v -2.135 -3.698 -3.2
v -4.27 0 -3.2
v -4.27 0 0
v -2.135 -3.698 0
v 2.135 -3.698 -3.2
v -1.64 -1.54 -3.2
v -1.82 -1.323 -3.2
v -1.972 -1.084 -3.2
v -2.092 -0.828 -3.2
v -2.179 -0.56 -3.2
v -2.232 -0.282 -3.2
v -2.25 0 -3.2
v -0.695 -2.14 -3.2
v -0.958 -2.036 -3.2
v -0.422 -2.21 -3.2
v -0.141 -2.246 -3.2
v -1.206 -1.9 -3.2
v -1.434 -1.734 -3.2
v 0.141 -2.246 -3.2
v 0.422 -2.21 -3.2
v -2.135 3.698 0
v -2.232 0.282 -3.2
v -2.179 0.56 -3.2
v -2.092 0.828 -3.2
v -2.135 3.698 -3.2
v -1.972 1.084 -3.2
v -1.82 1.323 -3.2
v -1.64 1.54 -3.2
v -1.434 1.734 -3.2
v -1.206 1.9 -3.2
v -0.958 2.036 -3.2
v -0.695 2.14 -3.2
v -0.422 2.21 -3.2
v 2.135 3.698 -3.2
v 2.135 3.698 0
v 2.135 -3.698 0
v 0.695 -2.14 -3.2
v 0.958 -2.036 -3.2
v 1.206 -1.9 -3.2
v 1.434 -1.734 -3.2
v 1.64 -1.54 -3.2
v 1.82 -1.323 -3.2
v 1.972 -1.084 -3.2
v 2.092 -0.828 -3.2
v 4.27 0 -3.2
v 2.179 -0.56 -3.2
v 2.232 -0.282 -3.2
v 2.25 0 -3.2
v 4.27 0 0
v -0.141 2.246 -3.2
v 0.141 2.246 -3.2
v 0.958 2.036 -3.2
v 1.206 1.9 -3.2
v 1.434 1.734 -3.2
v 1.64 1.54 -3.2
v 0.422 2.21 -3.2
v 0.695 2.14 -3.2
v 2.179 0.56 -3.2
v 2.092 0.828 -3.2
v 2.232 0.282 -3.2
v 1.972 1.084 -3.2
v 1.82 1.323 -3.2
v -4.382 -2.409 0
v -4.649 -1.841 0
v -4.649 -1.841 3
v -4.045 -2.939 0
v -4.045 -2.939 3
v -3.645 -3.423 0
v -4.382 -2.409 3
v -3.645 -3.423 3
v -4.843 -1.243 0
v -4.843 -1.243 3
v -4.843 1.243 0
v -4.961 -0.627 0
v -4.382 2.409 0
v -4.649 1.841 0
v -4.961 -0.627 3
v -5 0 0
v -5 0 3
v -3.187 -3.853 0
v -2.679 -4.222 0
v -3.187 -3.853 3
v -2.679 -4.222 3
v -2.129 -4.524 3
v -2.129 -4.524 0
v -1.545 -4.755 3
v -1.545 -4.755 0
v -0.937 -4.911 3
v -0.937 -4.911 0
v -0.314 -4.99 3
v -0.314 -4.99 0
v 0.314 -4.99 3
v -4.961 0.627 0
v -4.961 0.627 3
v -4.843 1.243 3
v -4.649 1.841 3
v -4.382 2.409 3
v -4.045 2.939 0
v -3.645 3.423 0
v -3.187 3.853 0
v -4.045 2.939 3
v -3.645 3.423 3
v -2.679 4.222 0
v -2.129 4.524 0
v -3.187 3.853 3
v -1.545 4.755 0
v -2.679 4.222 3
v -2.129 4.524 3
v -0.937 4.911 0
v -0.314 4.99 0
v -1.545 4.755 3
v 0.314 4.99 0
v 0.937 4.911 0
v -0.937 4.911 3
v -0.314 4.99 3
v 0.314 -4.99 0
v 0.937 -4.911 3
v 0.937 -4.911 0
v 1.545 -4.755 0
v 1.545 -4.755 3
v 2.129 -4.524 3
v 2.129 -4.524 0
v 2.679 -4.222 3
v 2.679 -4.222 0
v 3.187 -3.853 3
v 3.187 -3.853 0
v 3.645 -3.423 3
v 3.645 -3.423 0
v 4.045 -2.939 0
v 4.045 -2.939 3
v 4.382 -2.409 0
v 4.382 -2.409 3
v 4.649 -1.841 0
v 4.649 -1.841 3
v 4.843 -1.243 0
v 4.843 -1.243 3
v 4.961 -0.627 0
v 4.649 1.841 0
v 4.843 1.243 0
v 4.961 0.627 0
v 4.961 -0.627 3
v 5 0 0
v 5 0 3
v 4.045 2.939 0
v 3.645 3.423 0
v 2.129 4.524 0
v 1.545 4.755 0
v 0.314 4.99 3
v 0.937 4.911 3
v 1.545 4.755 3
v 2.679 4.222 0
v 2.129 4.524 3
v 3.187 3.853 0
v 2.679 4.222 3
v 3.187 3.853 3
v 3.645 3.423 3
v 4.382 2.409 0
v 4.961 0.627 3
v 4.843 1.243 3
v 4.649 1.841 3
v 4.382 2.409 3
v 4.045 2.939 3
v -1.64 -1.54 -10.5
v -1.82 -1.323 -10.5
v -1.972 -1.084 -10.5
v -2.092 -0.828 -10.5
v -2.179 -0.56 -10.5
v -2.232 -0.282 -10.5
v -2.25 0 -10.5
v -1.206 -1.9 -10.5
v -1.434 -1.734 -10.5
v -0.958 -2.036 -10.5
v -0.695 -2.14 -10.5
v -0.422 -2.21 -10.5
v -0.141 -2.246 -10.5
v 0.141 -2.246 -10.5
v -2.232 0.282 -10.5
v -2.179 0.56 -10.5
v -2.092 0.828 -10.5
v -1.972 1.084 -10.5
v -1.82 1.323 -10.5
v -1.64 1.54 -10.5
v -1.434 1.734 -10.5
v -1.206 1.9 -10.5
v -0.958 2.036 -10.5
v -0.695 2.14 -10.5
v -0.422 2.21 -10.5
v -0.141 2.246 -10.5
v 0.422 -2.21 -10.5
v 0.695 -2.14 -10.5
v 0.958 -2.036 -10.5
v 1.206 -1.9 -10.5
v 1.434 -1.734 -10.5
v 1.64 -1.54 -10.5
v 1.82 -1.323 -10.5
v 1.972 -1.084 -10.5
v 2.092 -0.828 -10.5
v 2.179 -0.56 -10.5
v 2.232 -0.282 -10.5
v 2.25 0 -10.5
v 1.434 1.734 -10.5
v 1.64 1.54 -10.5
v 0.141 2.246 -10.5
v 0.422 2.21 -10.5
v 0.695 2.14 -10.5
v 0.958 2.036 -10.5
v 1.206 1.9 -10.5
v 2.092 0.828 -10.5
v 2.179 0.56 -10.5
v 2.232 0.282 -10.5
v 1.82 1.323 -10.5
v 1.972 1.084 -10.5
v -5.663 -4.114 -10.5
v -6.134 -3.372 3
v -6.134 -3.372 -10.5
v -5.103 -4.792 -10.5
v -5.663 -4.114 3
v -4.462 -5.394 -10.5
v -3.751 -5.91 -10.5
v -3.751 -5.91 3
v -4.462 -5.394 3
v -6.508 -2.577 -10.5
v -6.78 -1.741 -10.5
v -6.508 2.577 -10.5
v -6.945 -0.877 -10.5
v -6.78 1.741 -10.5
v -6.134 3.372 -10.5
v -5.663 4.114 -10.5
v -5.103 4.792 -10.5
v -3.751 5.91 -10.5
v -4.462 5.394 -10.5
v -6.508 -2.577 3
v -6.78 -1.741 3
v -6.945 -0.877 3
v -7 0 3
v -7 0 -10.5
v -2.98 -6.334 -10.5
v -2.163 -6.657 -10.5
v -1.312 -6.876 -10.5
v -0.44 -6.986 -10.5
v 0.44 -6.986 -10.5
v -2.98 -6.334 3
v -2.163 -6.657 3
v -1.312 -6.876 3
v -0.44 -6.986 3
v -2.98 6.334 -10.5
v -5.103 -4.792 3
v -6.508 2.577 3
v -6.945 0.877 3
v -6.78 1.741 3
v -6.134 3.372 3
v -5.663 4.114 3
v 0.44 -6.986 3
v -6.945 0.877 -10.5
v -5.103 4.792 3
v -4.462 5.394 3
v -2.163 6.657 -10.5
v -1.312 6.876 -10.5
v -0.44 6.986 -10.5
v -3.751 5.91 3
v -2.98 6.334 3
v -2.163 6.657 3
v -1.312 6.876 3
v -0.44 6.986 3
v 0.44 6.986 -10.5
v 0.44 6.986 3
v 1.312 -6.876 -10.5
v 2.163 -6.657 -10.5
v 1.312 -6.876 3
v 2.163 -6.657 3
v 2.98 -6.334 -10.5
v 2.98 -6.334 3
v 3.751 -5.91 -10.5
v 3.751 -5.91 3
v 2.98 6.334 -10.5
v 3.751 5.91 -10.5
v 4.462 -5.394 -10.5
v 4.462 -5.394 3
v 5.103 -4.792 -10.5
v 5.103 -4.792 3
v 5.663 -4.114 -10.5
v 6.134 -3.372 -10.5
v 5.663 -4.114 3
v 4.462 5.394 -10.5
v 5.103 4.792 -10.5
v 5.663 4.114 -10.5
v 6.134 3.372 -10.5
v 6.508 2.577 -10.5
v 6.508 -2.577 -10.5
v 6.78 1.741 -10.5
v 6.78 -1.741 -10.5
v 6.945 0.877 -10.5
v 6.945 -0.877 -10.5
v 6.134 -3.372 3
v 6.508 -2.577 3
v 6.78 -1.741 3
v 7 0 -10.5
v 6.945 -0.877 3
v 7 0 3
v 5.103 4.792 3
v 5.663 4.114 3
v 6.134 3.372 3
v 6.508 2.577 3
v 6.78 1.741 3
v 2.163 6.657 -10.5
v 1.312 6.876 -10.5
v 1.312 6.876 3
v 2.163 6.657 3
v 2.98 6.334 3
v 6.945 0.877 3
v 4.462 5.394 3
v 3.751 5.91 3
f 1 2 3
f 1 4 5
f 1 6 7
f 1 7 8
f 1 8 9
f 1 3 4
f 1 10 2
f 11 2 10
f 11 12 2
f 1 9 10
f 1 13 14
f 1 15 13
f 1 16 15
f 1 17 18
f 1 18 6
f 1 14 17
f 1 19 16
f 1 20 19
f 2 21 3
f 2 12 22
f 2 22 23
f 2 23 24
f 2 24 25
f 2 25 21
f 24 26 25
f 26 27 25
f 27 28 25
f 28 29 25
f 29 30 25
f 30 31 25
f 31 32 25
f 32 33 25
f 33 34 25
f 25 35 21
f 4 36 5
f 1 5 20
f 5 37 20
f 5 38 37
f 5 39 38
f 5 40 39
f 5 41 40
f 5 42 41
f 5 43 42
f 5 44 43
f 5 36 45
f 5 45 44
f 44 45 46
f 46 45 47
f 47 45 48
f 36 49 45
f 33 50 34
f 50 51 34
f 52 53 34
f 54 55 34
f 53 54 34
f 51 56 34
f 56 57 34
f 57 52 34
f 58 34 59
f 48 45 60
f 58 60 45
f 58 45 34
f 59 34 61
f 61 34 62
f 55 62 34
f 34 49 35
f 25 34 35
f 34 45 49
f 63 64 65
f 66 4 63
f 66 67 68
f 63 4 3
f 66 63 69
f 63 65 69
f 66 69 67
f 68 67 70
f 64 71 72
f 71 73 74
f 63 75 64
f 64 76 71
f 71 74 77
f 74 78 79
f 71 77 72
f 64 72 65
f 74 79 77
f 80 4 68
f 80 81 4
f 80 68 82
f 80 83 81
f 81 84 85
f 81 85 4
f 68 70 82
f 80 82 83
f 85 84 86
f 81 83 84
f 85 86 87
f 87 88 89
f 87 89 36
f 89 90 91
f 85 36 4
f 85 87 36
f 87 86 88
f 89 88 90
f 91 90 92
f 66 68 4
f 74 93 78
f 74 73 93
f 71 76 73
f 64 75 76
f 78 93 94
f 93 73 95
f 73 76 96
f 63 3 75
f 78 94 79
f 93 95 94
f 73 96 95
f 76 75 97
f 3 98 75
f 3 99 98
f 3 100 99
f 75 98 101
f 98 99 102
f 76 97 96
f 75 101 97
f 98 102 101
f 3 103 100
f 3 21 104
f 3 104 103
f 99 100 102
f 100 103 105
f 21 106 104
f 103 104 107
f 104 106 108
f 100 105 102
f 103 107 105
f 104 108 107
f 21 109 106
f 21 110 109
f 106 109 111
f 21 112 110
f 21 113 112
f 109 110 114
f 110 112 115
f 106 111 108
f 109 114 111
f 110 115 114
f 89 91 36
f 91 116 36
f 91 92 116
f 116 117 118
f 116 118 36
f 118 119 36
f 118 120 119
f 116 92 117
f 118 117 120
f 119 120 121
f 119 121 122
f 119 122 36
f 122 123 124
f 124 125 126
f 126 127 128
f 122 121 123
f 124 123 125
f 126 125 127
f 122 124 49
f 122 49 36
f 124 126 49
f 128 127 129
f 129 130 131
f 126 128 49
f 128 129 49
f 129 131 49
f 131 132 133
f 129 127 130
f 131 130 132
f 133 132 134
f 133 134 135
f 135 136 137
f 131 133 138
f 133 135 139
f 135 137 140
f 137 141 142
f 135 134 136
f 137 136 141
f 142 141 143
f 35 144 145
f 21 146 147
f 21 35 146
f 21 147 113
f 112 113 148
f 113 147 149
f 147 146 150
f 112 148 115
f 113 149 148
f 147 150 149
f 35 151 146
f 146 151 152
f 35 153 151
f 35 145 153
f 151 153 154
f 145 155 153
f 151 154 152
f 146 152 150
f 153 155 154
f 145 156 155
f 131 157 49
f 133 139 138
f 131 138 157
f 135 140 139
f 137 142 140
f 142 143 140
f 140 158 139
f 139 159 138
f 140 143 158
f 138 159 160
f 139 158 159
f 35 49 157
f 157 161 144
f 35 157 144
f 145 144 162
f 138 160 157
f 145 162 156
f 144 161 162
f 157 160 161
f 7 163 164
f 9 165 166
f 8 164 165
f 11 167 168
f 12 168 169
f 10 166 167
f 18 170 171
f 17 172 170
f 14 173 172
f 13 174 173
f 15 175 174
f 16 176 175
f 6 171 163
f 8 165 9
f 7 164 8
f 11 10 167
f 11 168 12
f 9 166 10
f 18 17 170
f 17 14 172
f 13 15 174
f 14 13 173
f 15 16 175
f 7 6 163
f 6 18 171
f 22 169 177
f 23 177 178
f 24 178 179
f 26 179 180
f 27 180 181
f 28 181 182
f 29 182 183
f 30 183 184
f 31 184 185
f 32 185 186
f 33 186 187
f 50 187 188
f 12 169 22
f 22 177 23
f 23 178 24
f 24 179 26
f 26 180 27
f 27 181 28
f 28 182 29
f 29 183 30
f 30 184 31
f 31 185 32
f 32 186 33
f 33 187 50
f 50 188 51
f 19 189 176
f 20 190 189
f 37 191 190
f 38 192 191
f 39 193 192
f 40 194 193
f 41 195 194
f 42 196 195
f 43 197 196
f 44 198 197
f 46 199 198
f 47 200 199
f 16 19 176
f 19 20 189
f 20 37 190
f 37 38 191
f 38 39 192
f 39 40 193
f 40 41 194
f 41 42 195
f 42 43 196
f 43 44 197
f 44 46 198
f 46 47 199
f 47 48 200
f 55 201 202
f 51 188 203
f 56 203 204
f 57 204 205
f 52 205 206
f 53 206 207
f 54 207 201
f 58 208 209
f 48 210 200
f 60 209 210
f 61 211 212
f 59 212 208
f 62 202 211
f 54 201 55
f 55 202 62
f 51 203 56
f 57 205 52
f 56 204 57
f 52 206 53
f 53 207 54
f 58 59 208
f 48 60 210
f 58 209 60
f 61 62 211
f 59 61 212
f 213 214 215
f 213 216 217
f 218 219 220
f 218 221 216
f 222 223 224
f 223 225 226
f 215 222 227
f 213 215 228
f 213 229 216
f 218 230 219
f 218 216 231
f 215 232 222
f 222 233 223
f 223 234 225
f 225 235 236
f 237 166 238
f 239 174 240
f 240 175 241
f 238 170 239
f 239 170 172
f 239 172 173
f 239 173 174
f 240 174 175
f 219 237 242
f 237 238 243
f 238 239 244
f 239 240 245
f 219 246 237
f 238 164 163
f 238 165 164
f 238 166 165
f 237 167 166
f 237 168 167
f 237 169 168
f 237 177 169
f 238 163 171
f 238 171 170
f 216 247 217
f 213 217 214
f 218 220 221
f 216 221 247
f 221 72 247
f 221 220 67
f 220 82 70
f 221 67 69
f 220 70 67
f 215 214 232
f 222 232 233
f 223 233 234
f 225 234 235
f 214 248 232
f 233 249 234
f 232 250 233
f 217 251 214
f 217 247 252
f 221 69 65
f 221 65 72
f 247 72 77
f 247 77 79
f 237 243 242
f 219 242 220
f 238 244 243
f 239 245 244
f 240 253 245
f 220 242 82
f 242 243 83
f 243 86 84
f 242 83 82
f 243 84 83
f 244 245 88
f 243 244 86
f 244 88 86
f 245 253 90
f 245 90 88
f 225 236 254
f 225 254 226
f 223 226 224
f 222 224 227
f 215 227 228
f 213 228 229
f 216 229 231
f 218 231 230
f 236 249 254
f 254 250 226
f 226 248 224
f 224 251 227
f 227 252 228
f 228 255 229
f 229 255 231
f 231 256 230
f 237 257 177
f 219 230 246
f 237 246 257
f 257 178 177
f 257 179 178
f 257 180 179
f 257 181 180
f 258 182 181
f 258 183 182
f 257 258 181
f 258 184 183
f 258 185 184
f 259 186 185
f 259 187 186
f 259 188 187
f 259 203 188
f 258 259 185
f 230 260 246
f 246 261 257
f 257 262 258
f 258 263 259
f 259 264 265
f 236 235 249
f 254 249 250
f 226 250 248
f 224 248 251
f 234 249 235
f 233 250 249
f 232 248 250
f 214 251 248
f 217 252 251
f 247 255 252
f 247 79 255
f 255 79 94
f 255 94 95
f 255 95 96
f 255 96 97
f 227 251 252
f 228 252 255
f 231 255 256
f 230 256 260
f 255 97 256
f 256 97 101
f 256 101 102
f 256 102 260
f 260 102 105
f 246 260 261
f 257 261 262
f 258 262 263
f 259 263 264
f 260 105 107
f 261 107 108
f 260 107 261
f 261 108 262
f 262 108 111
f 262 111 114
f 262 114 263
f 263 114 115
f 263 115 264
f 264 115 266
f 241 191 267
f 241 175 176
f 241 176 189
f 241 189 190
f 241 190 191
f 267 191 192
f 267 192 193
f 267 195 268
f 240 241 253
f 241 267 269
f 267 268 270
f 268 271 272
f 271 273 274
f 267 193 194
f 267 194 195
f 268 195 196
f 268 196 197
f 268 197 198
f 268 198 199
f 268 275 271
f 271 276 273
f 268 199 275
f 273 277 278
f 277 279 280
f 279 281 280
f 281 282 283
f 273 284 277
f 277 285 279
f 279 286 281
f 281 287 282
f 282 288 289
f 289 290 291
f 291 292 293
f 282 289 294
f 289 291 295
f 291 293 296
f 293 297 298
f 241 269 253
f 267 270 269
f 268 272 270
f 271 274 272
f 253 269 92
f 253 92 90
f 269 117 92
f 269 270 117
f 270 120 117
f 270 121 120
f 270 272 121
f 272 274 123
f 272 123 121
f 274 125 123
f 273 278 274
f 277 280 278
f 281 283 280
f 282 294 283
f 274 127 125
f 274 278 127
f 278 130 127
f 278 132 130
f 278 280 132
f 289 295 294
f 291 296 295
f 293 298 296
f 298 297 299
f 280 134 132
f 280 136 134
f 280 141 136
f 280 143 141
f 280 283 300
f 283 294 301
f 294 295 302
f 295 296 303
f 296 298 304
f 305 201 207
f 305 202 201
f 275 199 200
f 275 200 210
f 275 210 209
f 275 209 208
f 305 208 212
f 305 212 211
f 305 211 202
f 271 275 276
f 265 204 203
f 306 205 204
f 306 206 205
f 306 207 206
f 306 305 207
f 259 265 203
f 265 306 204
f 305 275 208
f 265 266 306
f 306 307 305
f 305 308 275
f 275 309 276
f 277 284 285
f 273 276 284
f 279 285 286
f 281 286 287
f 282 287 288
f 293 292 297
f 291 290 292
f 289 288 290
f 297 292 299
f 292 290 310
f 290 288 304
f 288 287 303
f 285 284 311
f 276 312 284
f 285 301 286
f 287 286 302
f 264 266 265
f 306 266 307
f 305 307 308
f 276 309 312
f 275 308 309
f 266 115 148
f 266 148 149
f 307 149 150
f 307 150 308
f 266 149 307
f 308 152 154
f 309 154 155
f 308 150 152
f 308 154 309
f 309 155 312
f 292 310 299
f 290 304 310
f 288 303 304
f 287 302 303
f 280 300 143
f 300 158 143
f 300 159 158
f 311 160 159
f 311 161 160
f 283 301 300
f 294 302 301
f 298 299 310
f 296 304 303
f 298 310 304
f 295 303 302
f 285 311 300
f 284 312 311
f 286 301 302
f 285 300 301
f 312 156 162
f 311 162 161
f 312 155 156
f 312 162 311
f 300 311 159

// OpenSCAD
$fn = 50;

difference() {
	union() {
		translate(v = [0, 0, -10.5]) {
			cylinder(h = 13.5, r = 7.0);
		}
	}
	union() {
		translate(v = [0, 0, 0]) {
			rotate(a = [0, 0, 0]) {
				difference() {
					union() {
						translate(v = [0, 0, -3.2]) {
							linear_extrude(height = 3.2) {
								polygon(points = [[4.2698, 0.0], [2.1349000000000005, 3.697755269078796], [-2.134899999999999, 3.6977552690787965], [-4.2698, 5.228996902999369e-16], [-2.134900000000002, -3.6977552690787956], [2.1348999999999974, -3.697755269078798]]);
							}
						}
					}
					union();
				}
			}
		}
		#cylinder(h = 3, r = 5.0);
		#translate(v = [0, 0, -100.0]) {
			cylinder(h = 200, r = 2.25);
		}
	}
}
